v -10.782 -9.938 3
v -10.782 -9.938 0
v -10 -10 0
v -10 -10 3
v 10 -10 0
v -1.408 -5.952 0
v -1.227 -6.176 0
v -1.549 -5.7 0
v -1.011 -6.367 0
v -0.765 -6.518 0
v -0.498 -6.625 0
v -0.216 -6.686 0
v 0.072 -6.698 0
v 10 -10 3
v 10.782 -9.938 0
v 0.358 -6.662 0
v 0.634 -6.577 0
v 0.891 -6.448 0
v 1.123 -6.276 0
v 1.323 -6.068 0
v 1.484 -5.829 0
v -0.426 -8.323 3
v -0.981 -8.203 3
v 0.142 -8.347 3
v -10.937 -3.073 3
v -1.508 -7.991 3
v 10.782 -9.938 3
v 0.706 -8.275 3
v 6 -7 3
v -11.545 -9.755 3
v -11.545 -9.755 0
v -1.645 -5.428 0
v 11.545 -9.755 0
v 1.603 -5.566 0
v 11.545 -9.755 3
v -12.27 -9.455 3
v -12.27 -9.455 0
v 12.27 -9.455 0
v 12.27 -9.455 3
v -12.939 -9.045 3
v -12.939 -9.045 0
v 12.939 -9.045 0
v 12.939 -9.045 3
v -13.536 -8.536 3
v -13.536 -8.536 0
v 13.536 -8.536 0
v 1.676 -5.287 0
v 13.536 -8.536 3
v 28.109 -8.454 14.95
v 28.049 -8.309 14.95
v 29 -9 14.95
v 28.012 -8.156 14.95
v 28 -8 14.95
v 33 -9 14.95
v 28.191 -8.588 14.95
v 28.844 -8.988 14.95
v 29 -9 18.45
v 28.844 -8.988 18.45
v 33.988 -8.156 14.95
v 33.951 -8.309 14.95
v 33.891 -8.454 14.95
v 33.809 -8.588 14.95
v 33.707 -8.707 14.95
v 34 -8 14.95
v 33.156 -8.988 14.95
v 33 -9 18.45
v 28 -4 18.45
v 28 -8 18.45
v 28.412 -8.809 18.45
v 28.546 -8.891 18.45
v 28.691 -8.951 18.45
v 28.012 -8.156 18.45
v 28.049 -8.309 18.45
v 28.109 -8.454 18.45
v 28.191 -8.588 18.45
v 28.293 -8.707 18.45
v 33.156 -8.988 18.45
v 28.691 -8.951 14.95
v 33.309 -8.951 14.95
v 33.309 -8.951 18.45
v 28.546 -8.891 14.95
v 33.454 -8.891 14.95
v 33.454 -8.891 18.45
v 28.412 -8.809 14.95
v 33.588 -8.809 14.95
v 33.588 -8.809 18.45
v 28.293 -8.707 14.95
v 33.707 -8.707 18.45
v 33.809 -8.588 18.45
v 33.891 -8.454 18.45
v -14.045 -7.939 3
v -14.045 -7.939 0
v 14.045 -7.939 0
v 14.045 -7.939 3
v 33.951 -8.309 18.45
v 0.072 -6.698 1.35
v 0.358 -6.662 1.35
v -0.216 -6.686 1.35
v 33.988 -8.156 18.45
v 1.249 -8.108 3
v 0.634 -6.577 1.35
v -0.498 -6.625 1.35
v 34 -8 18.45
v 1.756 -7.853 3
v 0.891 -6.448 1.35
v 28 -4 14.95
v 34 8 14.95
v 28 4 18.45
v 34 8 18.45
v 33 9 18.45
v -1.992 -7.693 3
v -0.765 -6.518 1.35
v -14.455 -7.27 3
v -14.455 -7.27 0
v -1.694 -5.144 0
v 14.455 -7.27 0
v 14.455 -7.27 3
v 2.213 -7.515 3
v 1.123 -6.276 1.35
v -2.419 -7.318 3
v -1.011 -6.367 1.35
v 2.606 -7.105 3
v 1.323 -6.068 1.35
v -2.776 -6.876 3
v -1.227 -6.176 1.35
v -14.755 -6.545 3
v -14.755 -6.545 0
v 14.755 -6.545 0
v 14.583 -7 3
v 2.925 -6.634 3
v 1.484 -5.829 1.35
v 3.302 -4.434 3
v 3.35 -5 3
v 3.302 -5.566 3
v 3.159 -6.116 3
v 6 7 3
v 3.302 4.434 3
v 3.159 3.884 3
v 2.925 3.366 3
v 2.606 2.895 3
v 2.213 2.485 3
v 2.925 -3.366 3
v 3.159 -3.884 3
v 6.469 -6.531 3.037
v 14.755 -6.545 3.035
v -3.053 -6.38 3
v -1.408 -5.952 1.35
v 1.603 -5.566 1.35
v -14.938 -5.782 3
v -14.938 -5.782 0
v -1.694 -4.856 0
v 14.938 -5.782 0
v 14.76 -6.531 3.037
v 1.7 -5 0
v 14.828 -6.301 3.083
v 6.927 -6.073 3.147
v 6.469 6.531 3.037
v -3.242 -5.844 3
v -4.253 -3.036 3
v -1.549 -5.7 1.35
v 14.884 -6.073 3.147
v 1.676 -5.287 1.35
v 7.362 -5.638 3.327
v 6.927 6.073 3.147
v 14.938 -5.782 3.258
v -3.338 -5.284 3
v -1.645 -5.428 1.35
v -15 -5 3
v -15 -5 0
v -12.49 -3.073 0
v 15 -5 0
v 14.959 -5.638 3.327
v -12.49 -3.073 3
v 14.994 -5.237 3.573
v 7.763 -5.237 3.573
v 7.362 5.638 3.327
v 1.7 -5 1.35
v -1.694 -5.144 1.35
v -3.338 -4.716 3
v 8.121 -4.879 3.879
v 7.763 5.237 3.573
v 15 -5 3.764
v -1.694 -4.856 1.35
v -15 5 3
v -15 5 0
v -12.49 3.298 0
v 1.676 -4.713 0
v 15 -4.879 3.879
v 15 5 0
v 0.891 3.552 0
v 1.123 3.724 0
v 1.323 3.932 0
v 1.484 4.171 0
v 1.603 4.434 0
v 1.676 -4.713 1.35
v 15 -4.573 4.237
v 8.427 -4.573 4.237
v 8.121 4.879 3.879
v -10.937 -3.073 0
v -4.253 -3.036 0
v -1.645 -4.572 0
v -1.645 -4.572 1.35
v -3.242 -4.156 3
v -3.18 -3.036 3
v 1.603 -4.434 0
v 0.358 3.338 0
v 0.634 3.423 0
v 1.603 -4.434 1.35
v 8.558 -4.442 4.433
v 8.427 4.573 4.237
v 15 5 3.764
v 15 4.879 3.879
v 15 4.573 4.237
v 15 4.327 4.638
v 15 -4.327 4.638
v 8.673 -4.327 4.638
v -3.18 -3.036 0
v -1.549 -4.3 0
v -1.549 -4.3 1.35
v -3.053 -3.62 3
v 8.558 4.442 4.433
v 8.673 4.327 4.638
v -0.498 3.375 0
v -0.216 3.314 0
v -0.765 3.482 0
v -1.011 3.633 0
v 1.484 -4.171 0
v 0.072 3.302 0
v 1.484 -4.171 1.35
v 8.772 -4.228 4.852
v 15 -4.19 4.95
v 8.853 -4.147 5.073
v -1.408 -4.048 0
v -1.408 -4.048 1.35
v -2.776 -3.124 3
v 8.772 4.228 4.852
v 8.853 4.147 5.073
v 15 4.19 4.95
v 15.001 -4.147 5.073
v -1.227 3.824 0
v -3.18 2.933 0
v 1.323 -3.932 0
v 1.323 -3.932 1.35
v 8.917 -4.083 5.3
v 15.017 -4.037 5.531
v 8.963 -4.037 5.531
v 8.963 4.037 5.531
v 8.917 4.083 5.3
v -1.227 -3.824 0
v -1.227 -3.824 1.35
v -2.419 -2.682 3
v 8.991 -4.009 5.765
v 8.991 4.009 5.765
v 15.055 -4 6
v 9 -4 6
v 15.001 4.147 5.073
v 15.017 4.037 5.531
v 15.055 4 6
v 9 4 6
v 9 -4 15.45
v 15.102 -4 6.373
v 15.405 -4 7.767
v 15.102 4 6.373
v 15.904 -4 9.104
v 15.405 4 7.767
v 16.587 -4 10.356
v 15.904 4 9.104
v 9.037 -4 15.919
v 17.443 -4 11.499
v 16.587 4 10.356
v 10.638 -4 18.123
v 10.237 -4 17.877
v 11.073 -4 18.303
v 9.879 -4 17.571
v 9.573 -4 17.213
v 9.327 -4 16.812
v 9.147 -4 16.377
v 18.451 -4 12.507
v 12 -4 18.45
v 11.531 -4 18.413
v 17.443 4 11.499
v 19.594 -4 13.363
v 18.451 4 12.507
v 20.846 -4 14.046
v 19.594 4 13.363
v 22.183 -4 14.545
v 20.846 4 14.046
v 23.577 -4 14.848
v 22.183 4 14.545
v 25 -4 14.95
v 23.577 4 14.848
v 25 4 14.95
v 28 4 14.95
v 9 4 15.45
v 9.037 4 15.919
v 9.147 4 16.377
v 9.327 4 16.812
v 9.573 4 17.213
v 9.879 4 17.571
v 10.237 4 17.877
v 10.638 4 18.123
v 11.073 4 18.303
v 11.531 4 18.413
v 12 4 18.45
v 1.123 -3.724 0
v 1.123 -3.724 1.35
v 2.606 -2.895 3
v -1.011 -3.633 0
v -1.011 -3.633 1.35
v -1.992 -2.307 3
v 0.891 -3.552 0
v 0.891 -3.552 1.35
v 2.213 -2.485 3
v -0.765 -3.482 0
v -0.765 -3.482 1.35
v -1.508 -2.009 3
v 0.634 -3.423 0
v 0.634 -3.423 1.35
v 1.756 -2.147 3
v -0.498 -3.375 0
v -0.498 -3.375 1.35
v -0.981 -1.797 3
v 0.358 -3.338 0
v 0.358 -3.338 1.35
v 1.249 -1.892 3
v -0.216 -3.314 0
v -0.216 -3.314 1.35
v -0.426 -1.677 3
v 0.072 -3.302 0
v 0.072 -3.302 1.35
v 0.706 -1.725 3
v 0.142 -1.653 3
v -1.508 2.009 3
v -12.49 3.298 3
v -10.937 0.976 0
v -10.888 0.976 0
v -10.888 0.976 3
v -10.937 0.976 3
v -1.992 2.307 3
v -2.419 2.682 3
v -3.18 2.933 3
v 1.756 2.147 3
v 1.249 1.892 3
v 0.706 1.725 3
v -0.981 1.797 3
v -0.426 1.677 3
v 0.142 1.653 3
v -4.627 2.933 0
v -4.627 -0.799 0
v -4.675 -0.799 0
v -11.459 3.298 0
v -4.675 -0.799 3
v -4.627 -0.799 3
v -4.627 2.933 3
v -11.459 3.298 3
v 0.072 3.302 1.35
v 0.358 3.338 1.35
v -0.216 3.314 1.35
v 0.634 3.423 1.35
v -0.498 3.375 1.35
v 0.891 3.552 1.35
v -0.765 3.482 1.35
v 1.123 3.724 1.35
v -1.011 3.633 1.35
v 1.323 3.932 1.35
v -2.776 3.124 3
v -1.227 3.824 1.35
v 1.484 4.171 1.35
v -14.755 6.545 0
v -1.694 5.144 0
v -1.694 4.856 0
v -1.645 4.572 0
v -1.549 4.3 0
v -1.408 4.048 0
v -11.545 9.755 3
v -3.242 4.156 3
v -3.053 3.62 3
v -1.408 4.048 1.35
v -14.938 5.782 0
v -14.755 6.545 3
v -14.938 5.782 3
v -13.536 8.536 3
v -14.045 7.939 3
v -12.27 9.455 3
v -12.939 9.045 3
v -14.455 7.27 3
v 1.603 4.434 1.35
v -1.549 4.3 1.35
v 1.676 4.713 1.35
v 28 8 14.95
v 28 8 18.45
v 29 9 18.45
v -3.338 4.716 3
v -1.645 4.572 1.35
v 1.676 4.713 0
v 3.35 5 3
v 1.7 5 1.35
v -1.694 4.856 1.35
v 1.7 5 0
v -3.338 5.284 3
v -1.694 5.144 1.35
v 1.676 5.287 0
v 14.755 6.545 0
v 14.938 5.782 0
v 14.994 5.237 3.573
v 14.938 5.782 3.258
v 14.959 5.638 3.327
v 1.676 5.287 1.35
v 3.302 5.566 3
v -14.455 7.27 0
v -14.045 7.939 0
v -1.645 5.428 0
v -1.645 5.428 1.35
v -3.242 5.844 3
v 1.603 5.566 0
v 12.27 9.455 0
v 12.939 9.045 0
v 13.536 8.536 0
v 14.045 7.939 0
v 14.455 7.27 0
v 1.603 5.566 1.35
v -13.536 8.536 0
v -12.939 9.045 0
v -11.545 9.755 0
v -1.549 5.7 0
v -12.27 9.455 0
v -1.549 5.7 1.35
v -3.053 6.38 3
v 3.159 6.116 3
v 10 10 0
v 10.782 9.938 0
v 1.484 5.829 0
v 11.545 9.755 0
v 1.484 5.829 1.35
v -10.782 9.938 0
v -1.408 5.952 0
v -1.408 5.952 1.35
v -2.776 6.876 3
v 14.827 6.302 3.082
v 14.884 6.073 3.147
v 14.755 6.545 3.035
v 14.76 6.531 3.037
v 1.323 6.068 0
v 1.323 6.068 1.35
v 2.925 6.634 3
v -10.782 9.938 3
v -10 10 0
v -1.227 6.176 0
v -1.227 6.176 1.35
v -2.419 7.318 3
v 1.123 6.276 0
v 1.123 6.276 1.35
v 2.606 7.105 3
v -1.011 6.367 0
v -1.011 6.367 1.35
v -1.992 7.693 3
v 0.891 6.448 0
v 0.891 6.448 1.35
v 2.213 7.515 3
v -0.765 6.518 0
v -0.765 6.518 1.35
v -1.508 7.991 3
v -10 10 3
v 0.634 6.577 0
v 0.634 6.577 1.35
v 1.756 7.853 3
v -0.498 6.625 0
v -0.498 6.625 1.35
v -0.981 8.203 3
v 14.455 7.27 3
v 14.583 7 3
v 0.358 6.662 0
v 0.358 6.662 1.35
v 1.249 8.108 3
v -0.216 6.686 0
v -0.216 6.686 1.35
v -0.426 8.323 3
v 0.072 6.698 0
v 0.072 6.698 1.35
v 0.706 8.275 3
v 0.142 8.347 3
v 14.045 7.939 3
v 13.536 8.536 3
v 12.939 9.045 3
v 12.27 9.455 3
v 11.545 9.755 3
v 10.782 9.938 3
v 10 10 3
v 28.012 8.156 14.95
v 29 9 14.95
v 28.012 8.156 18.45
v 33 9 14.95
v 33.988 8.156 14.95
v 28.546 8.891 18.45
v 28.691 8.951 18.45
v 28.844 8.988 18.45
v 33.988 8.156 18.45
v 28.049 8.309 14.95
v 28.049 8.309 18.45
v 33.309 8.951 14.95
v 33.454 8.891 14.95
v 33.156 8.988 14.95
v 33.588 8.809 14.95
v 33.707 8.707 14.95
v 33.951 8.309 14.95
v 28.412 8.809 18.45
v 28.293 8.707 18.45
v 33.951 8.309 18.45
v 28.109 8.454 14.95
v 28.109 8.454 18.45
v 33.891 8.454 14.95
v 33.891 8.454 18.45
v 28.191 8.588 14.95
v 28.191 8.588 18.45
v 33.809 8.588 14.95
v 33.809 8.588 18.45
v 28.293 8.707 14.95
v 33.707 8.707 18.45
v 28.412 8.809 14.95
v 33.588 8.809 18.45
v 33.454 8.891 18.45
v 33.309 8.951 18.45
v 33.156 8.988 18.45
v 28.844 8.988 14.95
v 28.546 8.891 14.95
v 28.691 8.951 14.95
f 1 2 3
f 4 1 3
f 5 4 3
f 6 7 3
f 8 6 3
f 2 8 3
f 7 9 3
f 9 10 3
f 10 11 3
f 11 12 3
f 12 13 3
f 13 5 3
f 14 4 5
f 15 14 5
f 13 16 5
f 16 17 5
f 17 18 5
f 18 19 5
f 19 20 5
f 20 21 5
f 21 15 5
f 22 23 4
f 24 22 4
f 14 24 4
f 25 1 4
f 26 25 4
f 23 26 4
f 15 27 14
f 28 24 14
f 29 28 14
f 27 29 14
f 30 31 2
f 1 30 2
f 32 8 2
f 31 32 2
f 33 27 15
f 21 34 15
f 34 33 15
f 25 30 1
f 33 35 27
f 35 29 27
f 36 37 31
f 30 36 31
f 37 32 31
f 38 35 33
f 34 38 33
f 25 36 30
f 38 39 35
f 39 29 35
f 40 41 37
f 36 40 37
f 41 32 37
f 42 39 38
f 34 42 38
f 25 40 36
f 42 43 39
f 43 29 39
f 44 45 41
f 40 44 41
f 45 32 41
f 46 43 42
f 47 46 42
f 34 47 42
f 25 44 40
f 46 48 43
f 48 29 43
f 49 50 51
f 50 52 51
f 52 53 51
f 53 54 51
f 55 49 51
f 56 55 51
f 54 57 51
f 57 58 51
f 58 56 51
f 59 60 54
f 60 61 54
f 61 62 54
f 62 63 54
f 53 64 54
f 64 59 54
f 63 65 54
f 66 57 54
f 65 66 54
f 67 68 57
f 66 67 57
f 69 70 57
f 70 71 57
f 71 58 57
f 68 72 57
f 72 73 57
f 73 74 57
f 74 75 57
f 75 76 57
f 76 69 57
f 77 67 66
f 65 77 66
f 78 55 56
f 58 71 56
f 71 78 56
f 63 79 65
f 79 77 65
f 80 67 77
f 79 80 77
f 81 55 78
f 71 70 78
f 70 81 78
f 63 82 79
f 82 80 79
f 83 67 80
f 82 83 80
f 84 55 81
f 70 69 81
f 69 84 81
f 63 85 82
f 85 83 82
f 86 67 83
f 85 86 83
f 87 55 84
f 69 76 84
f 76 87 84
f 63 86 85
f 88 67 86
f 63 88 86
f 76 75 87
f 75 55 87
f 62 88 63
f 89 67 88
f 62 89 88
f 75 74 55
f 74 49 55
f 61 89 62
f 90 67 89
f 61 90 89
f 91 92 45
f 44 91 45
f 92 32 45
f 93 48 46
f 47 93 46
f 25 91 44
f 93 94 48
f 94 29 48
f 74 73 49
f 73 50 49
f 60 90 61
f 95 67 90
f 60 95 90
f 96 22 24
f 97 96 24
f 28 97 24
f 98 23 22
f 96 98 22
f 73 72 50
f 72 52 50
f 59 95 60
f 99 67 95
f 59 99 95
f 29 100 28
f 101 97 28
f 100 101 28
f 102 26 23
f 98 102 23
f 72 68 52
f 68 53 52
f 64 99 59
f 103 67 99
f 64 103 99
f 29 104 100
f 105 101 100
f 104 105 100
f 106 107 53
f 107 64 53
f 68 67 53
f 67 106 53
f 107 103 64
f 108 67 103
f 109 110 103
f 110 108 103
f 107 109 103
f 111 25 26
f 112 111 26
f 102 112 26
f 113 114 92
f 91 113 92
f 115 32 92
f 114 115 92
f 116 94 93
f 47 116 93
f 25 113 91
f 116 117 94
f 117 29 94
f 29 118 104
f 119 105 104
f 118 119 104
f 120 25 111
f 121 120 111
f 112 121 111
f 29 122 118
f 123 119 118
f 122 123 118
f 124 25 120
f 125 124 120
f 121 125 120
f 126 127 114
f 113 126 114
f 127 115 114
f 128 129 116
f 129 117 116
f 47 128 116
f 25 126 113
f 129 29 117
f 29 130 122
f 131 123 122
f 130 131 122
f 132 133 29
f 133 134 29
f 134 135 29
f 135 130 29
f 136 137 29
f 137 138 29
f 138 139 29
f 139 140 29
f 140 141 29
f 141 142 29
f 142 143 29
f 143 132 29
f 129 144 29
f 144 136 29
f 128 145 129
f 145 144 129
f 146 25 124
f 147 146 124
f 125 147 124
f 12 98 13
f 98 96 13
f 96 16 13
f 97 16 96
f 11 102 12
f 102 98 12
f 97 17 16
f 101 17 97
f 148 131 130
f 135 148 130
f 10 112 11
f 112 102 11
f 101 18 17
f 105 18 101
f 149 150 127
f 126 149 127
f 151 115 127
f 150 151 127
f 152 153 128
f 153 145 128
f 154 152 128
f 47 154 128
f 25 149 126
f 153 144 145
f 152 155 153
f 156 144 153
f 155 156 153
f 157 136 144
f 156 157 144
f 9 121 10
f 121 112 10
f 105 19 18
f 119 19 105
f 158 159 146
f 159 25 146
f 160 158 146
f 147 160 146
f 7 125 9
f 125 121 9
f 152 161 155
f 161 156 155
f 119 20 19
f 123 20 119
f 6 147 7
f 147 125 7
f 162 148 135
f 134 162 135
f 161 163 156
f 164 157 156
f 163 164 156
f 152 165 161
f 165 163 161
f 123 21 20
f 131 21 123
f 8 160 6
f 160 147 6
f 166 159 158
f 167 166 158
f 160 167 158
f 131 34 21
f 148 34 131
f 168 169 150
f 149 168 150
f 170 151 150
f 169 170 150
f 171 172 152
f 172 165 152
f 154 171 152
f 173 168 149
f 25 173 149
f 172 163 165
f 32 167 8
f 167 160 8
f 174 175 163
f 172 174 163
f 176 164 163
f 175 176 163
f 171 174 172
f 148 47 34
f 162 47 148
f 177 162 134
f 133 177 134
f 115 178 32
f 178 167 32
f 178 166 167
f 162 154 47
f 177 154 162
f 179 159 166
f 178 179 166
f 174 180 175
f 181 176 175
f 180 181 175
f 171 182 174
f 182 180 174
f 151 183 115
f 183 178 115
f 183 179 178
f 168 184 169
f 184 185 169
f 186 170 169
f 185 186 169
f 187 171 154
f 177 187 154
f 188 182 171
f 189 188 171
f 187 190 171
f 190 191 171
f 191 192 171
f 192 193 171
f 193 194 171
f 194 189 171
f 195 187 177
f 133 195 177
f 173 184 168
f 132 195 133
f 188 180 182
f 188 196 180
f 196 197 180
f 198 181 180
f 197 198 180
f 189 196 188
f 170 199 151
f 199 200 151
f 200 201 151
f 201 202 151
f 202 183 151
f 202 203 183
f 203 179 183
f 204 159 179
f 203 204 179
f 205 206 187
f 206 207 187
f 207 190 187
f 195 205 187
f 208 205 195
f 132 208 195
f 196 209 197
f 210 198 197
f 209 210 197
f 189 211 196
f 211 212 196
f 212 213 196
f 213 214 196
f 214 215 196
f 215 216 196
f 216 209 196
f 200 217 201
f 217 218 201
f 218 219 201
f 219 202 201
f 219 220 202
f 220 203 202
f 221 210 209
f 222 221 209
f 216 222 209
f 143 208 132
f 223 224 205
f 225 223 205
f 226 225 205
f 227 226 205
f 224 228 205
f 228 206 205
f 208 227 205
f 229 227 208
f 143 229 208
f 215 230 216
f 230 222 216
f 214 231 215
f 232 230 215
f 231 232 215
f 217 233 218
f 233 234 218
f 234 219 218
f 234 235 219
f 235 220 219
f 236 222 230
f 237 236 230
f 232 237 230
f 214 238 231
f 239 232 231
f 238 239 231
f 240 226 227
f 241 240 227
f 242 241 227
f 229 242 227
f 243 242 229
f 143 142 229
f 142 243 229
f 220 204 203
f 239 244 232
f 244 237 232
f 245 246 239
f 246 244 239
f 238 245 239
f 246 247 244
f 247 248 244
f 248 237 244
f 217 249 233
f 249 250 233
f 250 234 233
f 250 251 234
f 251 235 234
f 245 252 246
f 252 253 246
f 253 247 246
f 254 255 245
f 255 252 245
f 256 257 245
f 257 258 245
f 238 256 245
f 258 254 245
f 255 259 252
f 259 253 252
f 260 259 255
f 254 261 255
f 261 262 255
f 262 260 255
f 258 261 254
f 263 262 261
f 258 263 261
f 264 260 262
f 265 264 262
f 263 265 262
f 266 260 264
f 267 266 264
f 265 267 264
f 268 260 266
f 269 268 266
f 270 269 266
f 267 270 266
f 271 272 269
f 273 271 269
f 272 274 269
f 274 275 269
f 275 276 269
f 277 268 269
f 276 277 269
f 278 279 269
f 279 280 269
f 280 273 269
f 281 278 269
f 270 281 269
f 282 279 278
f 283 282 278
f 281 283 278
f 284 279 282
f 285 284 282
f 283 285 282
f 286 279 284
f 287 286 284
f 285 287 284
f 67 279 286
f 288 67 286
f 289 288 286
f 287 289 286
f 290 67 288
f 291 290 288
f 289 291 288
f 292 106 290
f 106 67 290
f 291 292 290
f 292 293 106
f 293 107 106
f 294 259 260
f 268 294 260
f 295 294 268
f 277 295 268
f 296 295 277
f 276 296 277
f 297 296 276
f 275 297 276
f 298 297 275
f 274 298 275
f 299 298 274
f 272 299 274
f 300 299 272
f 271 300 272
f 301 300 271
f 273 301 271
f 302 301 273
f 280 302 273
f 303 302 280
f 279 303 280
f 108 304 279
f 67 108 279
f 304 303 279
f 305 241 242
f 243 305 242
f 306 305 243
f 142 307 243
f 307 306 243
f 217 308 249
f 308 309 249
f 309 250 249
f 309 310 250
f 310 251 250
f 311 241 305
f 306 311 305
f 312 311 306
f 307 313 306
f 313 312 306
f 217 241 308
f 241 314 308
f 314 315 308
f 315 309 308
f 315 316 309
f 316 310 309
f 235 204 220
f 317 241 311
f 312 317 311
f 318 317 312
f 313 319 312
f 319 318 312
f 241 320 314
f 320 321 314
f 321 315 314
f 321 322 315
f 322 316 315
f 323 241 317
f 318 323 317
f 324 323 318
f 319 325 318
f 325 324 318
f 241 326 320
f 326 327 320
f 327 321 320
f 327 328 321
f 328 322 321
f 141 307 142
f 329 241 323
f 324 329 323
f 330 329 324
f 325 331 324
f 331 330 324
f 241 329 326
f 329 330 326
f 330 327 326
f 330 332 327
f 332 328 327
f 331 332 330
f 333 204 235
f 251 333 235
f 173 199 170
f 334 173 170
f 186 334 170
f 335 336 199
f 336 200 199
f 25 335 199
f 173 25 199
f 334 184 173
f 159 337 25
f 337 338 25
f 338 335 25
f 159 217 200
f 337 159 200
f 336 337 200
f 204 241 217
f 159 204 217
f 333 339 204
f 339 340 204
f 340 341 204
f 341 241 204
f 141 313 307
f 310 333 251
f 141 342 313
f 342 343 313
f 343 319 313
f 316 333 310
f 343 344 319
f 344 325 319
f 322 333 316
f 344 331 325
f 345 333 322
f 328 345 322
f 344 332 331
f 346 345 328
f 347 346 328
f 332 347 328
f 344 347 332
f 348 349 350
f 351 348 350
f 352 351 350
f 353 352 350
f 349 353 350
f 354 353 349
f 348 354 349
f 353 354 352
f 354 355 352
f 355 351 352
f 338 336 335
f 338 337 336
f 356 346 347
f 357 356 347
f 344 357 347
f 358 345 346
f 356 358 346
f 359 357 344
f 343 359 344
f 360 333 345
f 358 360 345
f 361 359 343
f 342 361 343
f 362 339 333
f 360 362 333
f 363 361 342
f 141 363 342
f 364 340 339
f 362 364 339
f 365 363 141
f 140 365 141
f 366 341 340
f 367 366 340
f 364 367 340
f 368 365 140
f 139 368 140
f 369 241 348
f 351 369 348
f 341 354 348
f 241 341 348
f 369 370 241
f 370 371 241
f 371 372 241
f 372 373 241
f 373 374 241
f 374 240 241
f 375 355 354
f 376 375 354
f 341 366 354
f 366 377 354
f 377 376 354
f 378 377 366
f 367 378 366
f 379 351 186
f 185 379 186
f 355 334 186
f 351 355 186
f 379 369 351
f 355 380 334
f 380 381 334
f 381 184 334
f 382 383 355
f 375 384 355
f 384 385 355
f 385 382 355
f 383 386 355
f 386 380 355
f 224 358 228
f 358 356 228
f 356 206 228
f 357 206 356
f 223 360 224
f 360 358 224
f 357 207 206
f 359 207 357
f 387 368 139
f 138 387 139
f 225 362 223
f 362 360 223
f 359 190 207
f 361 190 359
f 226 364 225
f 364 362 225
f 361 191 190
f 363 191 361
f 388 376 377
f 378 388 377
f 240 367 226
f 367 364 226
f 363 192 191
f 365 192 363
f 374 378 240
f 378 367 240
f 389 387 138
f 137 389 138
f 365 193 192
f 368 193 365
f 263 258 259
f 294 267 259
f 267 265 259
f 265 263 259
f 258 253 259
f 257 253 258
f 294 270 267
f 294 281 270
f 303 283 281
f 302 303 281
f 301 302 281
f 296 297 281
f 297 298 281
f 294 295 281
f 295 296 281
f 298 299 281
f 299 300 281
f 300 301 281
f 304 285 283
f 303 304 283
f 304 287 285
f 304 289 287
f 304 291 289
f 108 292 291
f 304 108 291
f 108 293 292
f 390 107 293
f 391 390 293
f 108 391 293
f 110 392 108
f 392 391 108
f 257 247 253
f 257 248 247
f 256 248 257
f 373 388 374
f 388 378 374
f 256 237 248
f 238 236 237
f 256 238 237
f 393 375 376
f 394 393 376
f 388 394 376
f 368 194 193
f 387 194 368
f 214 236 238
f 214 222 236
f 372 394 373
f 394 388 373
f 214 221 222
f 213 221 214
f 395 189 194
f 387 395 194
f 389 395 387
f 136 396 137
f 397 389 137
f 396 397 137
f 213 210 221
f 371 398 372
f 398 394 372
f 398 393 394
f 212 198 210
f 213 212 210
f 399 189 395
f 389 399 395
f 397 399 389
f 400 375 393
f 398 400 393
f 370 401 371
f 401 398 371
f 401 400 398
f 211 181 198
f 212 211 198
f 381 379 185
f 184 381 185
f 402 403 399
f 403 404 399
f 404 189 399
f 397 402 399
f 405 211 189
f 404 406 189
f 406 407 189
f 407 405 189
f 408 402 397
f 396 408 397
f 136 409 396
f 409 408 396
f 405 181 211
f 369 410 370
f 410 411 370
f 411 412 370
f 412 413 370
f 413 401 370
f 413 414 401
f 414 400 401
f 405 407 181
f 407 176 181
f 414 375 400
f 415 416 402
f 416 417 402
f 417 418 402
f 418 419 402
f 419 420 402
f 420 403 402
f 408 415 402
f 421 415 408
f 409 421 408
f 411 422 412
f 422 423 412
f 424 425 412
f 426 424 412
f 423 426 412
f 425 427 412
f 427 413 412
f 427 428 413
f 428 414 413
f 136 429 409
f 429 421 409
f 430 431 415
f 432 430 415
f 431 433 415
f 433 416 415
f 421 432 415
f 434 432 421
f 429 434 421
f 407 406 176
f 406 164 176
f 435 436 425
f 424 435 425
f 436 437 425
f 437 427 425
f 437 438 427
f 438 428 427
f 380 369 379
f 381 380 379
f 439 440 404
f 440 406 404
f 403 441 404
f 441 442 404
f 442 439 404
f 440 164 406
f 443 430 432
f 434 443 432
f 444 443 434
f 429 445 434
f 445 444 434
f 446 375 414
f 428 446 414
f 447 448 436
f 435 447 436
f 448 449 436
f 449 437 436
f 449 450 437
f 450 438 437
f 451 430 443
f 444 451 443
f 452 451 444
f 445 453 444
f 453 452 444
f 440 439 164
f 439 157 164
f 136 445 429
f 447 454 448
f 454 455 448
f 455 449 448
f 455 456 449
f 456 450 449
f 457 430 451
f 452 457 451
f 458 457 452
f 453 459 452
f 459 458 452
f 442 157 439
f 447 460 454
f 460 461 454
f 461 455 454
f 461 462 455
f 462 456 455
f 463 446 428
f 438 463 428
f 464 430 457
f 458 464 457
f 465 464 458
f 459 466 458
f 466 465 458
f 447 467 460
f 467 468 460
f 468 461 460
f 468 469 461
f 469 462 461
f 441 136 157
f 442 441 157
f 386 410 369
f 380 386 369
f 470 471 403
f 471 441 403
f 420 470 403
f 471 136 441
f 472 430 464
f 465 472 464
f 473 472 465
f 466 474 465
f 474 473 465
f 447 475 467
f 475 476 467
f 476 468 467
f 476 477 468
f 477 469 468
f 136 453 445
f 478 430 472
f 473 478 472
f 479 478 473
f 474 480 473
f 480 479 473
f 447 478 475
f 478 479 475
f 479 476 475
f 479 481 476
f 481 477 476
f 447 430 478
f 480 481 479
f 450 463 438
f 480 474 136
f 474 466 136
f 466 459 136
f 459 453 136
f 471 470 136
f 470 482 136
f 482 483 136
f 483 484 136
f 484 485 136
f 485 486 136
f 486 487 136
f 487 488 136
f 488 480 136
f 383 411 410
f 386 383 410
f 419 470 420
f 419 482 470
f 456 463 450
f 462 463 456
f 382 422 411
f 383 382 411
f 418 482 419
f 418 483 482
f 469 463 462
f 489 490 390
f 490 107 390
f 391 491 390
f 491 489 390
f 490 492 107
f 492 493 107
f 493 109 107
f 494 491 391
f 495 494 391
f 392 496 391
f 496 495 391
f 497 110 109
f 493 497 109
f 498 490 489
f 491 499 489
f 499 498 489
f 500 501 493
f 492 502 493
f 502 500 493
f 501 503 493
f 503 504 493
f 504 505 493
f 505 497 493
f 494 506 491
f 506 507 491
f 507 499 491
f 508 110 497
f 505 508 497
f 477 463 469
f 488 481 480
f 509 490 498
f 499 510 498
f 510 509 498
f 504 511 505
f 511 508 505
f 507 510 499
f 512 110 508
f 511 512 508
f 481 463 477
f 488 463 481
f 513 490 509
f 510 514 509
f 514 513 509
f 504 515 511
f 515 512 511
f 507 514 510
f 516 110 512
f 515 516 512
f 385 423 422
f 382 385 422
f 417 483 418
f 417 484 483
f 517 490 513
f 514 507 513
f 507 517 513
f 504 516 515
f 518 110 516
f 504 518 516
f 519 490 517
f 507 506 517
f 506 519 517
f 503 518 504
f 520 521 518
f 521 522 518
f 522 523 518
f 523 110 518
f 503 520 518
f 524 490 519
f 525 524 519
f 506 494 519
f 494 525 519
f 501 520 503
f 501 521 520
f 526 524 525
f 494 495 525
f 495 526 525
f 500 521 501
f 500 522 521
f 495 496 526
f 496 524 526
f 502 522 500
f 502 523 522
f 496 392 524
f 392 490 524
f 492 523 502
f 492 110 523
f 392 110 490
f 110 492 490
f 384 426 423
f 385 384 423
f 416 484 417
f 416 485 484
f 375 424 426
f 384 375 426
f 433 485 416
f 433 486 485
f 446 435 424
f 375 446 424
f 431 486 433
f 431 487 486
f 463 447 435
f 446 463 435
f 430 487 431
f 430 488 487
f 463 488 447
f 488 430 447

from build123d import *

# Parameters (mm, degrees)
BOSS_EXTRUDE1_DEPTH                                 = 3
BOSS_EXTRUDE2_DEPTH                                 = 4
SKETCH3_W                                           = 6
SKETCH3_H                                           = 5
BOSS_EXTRUDE3_DEPTH                                 = 3.5
FILLET1_R                                           = 3
FILLET3_R                                           = 10
CSK_FOR_M3_COUNTERSUNK_FLAT_HEAD_SCREW1_D           = 3.4
CSK_FOR_M3_COUNTERSUNK_FLAT_HEAD_SCREW1_DEPTH       = 20
CSK_FOR_M3_COUNTERSUNK_FLAT_HEAD_SCREW1_CSINK_D     = 6.7
CSK_FOR_M3_COUNTERSUNK_FLAT_HEAD_SCREW1_CSINK_ANGLE = 90
CSK_FOR_M3_COUNTERSUNK_FLAT_HEAD_SCREW1_TIP         = 1.021463052
CUT_EXTRUDE1_DEPTH                                  = 10
FILLET4_R                                           = 1


with BuildPart() as part:
    # Sketch1 → Boss-Extrude1 (new body)
    with BuildSketch(Plane.XY):
        with BuildLine():
            Line((-10, -10), (10, -10))
            ThreePointArc((10, -10), (13.535533906, -8.535533906), (15, -5))
            Line((15, -5), (15, 5))
            ThreePointArc((15, 5), (13.535533906, 8.535533906), (10, 10))
            Line((10, 10), (-10, 10))
            ThreePointArc((-10, 10), (-13.535533906, 8.535533906), (-15, 5))
            Line((-15, 5), (-15, -5))
            ThreePointArc((-15, -5), (-13.535533906, -8.535533906), (-10, -10))
        make_face()
    extrude(amount=BOSS_EXTRUDE1_DEPTH)

    # Sketch2 → Boss-Extrude2 (add, symmetric)
    with BuildSketch(Plane(origin=(0, 0, 0), x_dir=(1, 0, 0), z_dir=(0, 1, 0))):
        Polygon((15, 0), (15, -14.95), (34, -14.95), (34, -18.45), (9, -18.45), (9, 0), align=None)
    extrude(amount=BOSS_EXTRUDE2_DEPTH, both=True)

    # Sketch3 → Boss-Extrude3 (add)
    with BuildSketch(Plane.XY.offset(18.45)):
        with Locations((31, 6.5)):
            Rectangle(SKETCH3_W, SKETCH3_H)
        with Locations((31, -6.5)):
            Rectangle(SKETCH3_W, SKETCH3_H)
    extrude(amount=-BOSS_EXTRUDE3_DEPTH)

    # Fillet1
    fillet1_edges = [part.edges().sort_by_distance(p)[0] for p in [
        (12, 4, 3),
        (9, 0, 3),
        (12, -4, 3),
        (9, 0, 18.45),
    ]]
    fillet(fillet1_edges, radius=FILLET1_R)

    # Fillet3
    fillet3_edges = [part.edges().sort_by_distance(p)[0] for p in [
        (15, 0, 14.95),
    ]]
    fillet(fillet3_edges, radius=FILLET3_R)

    # CSK for M3 Countersunk Flat Head Screw1
    with Locations(Plane(origin=(0, 5, 3), x_dir=(1, 0, 0), z_dir=(0, 0, 1))):
        with Locations((0, 0), (0, -10)):
            CounterSinkHole(CSK_FOR_M3_COUNTERSUNK_FLAT_HEAD_SCREW1_D / 2, CSK_FOR_M3_COUNTERSUNK_FLAT_HEAD_SCREW1_CSINK_D / 2, depth=CSK_FOR_M3_COUNTERSUNK_FLAT_HEAD_SCREW1_DEPTH, counter_sink_angle=CSK_FOR_M3_COUNTERSUNK_FLAT_HEAD_SCREW1_CSINK_ANGLE)
            with Locations((0, 0, -(CSK_FOR_M3_COUNTERSUNK_FLAT_HEAD_SCREW1_DEPTH + CSK_FOR_M3_COUNTERSUNK_FLAT_HEAD_SCREW1_TIP / 2))):  # 118° drill point
                Cone(0, CSK_FOR_M3_COUNTERSUNK_FLAT_HEAD_SCREW1_D / 2, CSK_FOR_M3_COUNTERSUNK_FLAT_HEAD_SCREW1_TIP, mode=Mode.SUBTRACT)

    # Sketch6 → Cut-Extrude1 (cut)
    with BuildSketch(Plane.XY.offset(3)):
        Polygon((-3.179643035, 2.933019371), (-4.626512789, 2.933019371), (-4.626512789, -0.799365029), (-4.67476253, -0.799365029), (-11.458554614, 3.29759659), (-12.490123019, 3.29759659), (-12.490123019, -3.072836961), (-10.93658358, -3.072836961), (-10.93658358, 0.975645142), (-10.888042331, 0.975645142), (-4.253108018, -3.036364149), (-3.179643035, -3.036364149), align=None)
    extrude(amount=-CUT_EXTRUDE1_DEPTH, mode=Mode.SUBTRACT)

    # Fillet4
    fillet4_edges = [part.edges().sort_by_distance(p)[0] for p in [
        (34, 9, 16.7),
        (28, 9, 16.7),
        (34, -9, 16.7),
        (28, -9, 16.7),
    ]]
    fillet(fillet4_edges, radius=FILLET4_R)


solid = part.part
